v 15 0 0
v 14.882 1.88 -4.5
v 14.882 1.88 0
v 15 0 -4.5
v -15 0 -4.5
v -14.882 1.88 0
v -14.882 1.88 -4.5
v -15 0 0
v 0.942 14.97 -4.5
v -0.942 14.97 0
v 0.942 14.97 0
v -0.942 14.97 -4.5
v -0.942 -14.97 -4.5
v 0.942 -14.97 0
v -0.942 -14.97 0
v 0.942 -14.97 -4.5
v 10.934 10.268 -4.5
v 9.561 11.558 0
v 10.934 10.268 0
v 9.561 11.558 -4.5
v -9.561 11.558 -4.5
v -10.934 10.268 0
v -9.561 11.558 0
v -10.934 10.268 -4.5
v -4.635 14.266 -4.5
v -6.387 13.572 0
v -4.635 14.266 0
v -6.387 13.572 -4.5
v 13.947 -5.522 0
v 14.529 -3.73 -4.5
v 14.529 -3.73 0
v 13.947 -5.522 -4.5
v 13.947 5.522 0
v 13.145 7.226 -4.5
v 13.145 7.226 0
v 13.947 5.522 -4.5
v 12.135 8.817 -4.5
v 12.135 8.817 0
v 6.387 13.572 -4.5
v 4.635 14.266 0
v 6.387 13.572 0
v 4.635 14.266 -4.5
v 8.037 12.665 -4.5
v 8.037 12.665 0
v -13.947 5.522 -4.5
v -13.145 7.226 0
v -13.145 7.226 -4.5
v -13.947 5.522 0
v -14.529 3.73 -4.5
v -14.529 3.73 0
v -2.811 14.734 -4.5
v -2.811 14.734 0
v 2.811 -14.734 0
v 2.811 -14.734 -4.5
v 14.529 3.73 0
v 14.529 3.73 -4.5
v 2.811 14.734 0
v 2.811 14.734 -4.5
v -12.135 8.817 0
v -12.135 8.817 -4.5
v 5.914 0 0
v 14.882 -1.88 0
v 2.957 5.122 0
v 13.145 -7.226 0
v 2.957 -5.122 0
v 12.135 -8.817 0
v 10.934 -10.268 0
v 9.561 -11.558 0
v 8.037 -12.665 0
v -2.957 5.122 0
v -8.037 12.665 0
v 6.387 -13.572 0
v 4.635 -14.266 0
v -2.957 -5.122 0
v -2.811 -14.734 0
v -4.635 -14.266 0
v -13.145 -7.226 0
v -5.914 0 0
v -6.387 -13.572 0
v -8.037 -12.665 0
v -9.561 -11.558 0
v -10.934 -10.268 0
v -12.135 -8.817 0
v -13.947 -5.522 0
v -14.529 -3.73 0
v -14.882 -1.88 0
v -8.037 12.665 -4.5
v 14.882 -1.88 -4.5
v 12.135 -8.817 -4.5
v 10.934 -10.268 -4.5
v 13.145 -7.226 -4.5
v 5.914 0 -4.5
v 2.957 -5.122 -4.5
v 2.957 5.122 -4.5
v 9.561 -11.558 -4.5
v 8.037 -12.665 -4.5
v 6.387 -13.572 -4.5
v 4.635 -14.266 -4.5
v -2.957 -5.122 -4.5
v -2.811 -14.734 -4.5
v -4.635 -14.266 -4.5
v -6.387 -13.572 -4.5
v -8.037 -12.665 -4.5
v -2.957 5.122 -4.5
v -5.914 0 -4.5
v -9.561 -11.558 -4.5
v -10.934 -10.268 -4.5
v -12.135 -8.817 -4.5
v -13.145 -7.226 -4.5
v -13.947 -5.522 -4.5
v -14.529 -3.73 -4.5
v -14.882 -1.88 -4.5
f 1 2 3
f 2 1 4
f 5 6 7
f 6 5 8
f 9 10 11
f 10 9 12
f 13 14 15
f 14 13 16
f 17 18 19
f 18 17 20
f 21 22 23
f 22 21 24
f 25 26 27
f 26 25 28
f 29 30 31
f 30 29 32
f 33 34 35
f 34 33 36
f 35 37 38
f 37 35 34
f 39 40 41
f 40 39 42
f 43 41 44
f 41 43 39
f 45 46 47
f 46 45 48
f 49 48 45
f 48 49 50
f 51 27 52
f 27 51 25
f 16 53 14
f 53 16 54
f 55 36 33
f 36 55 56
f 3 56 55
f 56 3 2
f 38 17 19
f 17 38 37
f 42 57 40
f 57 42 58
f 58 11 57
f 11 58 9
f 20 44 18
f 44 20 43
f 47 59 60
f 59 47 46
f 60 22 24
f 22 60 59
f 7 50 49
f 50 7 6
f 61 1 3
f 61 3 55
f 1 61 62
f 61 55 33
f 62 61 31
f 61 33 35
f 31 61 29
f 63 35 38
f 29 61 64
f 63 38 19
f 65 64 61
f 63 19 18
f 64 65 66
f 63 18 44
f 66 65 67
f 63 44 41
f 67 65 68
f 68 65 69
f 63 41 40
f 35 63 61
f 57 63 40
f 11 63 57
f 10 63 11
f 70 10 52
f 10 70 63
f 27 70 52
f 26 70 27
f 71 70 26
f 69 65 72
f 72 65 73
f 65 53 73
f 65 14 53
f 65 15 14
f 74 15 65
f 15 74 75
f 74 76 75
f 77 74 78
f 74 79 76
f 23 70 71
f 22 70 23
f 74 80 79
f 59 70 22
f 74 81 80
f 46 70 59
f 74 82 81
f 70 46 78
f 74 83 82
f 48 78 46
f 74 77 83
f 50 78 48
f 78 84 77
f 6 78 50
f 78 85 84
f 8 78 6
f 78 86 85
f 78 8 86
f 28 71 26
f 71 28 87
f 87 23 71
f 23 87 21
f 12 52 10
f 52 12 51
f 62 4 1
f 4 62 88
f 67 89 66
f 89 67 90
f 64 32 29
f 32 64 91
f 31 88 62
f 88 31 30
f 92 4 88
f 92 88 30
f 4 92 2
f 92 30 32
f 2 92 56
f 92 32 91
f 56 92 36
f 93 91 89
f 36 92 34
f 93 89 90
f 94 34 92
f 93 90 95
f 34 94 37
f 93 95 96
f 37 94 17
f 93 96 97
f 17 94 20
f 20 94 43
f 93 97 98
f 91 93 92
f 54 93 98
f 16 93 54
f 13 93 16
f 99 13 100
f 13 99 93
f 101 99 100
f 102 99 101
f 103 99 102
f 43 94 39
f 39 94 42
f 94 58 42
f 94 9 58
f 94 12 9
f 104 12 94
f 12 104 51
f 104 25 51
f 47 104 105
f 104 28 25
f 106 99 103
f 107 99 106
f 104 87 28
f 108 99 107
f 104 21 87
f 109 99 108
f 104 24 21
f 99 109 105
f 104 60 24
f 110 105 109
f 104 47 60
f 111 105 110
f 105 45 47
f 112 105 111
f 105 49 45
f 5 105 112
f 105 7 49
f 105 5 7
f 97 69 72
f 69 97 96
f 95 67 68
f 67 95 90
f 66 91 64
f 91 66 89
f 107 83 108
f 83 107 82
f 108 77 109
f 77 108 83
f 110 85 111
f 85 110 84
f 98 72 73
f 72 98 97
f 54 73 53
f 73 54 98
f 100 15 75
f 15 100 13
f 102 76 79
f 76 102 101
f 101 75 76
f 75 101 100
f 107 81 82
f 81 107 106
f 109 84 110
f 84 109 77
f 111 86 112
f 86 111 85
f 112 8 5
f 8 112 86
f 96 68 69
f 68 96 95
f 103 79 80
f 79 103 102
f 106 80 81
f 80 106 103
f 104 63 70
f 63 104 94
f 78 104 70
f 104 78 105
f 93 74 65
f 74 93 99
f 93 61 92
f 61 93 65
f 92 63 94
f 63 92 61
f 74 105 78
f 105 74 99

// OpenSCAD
$fn = 50;


difference() {
	union() {
		translate(v = [0, 0, -4.5000000000]) {
			cylinder(h = 4.5000000000, r = 15.0000000000);
		}
		translate(v = [0, 0, -6.0000000000]) {
			cylinder(h = 6, r = 2.8750000000);
		}
	}
	union() {
		translate(v = [0, 0, 0]) {
			rotate(a = [0, 0, 0]) {
				difference() {
					union() {
						translate(v = [0, 0, -5]) {
							linear_extrude(height = 5) {
								polygon(points = [[5.9142500000, 0.0000000000], [2.9571250000, 5.1218907443], [-2.9571250000, 5.1218907443], [-5.9142500000, 0.0000000000], [-2.9571250000, -5.1218907443], [2.9571250000, -5.1218907443]]);
							}
						}
					}
					union();
				}
			}
		}
		#translate(v = [0, 0, -100.0000000000]) {
			cylinder(h = 200, r = 3.2500000000);
		}
	}
}
